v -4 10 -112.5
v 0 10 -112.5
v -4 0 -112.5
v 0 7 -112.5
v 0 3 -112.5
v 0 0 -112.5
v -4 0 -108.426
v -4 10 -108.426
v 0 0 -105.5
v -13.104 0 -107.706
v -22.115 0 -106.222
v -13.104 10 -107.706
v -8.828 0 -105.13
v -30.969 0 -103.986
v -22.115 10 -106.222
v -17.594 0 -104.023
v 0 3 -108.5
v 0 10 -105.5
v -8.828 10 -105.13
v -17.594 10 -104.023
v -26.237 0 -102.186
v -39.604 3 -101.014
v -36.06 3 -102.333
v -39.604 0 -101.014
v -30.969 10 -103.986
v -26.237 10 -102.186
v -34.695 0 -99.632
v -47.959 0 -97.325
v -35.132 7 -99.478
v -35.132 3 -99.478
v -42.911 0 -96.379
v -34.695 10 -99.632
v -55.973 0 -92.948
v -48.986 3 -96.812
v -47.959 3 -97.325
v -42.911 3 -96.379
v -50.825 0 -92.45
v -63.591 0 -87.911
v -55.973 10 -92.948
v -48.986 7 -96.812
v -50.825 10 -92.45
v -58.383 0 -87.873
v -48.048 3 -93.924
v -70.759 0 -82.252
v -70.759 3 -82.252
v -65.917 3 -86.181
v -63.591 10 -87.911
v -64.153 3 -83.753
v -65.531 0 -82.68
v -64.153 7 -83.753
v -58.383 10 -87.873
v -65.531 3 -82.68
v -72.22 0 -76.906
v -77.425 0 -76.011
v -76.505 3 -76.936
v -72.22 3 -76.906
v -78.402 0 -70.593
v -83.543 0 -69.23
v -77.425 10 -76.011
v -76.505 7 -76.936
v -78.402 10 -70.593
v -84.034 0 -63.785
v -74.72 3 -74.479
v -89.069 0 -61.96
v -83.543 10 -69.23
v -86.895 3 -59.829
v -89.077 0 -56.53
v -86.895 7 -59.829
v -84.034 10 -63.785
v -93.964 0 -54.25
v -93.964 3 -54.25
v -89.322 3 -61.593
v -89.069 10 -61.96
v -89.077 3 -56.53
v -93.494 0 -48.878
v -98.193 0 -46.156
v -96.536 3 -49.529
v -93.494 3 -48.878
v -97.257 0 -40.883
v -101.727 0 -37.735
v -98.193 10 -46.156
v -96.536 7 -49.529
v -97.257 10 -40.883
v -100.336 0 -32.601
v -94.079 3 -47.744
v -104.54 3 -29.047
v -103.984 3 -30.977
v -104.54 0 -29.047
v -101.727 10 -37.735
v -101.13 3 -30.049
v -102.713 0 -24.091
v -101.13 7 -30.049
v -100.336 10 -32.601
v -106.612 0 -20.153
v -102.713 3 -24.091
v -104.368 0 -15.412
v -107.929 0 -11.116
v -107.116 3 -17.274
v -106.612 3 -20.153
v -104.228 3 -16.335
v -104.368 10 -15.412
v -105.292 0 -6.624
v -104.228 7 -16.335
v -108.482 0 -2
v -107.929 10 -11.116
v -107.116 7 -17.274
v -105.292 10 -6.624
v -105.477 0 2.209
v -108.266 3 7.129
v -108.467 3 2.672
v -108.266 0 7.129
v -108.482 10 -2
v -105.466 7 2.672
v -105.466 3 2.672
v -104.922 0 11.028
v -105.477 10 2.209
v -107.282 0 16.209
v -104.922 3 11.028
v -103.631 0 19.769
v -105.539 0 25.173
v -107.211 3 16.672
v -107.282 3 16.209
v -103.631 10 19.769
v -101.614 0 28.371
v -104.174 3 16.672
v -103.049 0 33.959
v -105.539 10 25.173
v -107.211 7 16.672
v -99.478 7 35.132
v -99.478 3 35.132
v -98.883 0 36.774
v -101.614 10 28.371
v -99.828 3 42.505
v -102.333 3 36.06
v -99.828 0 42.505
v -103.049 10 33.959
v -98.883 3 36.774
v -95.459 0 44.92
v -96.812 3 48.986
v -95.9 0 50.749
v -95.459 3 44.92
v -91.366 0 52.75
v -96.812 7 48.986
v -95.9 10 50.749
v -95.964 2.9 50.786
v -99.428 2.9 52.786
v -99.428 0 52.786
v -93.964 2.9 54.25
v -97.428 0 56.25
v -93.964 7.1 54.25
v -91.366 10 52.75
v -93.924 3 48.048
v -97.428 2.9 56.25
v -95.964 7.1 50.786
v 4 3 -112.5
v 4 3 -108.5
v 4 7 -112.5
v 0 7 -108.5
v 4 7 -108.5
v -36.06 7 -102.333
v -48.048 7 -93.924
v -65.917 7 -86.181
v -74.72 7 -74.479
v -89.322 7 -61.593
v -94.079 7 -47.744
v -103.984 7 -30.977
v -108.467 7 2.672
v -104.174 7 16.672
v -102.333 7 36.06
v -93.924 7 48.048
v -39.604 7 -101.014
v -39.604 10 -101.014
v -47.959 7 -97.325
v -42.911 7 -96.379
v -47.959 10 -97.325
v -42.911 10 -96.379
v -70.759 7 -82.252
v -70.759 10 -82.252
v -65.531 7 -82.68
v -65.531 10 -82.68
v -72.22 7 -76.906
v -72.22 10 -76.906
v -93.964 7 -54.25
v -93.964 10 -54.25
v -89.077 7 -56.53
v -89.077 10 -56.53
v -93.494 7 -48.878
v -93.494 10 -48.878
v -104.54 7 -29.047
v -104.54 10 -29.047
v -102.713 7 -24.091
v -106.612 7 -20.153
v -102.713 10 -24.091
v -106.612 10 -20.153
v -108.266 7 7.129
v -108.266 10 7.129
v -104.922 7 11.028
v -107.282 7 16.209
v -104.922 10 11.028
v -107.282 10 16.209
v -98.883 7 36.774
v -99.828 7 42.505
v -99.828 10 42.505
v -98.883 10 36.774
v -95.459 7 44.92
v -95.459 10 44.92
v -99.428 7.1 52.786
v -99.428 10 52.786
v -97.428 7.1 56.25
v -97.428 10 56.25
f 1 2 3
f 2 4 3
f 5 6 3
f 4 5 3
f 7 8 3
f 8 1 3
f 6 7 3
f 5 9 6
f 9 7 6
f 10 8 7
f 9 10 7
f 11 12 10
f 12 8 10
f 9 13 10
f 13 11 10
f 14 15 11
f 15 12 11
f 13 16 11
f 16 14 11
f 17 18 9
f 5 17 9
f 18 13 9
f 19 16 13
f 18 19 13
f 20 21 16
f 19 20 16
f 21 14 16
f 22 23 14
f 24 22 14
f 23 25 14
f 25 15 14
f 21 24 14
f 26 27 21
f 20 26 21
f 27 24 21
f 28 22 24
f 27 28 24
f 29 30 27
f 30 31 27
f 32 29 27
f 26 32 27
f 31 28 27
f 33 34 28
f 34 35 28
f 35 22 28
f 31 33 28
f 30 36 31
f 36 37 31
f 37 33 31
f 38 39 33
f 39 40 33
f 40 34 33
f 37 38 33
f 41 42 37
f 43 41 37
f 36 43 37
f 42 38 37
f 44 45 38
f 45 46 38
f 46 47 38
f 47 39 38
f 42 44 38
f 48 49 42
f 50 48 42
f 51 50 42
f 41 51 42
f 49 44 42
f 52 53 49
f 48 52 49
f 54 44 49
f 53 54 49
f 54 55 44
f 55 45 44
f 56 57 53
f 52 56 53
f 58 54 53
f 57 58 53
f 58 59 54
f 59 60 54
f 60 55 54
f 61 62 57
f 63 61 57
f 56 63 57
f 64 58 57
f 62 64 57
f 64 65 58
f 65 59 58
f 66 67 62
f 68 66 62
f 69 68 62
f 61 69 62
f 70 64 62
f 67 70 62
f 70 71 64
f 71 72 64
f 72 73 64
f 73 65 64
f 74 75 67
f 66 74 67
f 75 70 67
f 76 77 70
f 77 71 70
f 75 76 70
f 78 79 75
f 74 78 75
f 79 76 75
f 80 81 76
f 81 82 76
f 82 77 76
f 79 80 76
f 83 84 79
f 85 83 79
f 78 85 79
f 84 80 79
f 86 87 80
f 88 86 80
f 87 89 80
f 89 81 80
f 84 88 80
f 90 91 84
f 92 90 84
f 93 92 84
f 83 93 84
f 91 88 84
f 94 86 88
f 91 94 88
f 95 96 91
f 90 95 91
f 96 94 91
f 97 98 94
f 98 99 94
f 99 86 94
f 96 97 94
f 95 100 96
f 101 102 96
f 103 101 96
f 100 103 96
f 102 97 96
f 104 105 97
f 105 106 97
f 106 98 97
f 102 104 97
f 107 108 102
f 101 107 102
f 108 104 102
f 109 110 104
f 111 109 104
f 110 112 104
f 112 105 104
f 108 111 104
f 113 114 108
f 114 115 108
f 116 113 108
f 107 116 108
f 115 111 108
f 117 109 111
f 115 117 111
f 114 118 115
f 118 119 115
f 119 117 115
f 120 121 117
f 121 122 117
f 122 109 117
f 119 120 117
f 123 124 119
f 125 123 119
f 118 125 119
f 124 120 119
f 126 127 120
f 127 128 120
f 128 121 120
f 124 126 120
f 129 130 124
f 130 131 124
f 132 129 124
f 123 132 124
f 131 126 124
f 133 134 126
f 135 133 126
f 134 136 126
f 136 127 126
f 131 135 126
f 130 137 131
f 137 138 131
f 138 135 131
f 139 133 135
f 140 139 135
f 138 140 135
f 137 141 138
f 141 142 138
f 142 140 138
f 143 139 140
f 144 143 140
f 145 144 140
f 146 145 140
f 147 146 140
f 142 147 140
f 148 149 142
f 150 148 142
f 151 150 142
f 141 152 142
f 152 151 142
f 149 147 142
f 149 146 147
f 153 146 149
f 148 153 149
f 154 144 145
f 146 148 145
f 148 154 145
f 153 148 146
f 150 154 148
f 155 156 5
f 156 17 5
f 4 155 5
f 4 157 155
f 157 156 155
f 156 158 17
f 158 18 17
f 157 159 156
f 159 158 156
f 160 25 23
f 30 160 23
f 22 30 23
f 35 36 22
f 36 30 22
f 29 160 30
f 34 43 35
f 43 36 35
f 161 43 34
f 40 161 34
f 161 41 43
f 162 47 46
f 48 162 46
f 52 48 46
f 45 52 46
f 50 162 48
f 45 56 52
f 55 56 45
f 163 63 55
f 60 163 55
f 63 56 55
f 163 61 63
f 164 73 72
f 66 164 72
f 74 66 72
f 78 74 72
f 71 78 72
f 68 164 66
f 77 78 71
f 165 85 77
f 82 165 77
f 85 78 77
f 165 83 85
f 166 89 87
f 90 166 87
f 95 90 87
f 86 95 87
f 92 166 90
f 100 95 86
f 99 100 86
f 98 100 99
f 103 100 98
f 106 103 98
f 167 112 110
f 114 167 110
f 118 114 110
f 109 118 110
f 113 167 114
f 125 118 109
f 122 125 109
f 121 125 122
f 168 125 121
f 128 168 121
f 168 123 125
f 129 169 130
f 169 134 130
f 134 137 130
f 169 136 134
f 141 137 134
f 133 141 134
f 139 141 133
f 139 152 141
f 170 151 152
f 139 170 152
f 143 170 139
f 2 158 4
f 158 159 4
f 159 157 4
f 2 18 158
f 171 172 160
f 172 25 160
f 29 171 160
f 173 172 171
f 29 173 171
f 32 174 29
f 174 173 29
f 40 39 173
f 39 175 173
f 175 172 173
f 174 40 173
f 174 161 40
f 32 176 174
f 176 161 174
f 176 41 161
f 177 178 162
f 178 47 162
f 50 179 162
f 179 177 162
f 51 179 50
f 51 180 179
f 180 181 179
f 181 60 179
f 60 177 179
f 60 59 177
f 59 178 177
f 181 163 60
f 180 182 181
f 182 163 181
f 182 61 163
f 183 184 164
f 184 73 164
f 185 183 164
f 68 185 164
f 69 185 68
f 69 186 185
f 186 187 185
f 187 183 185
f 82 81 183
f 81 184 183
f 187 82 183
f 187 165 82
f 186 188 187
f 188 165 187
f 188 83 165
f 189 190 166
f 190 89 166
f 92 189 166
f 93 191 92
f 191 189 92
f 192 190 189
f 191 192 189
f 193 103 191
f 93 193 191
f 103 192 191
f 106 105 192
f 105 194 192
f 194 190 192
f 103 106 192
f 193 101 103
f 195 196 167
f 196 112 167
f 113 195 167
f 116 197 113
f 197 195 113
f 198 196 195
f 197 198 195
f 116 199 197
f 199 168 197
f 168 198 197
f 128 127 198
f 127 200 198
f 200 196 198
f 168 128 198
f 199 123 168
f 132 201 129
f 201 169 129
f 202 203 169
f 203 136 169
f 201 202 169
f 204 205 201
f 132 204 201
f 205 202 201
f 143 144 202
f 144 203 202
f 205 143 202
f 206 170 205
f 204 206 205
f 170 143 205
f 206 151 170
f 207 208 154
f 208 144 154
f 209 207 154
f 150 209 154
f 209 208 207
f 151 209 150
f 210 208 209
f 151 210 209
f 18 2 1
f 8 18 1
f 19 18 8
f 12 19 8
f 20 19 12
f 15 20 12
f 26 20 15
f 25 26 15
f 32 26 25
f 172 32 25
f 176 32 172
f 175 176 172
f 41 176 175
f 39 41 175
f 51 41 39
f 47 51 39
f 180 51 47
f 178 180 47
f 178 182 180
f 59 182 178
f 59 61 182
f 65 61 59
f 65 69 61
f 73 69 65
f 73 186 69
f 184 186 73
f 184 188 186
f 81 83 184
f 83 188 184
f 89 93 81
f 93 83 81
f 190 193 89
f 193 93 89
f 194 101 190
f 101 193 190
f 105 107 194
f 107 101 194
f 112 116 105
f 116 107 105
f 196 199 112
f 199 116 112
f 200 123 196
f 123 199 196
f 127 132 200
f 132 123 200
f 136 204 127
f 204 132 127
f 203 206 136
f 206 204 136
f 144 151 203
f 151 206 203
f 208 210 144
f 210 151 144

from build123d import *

# Parameters (mm, degrees)
BOSS_EXTRUDE1_DEPTH             = 10
SKETCH2_W                       = 8
SKETCH2_H                       = 4.2
CUT_EXTRUDE1_DEPTH              = 4
SKETCH3_W                       = 8
SKETCH3_H                       = 4
BOSS_EXTRUDE2_DEPTH             = 4
SKETCH4_W                       = 14
SKETCH4_H                       = 4
CUT_EXTRUDE2_DEPTH              = 109.5
CIRPATTERN4_COUNT               = 5
CIRPATTERN4_ANGLE               = 72
CIRPATTERN4_THE_OTHER_WAY_COUNT = 5
CIRPATTERN4_THE_OTHER_WAY_ANGLE = 72


with BuildPart() as part:
    # Sketch1 → Boss-Extrude1 (new body)
    with BuildSketch(Plane(origin=(0, 0, 0), x_dir=(1, 0, 0), z_dir=(0, 1, 0))):
        with BuildLine():
            Line((-4, 112.5), (-4, 108.426242211))
            ThreePointArc((-4, 108.426242211), (-93.963756311, 54.25), (-95.899880192, -50.74901949))
            Line((-95.899880192, -50.74901949), (-99.427857926, -52.785898385))
            Line((-99.427857926, -52.785898385), (-97.427857926, -56.25))
            Line((-97.427857926, -56.25), (-91.365680099, -52.75))
            ThreePointArc((-91.365680099, -52.75), (-91.365680099, 52.75), (0, 105.5))
            Line((0, 105.5), (0, 112.5))
            Line((0, 112.5), (-4, 112.5))
        make_face()
    extrude(amount=BOSS_EXTRUDE1_DEPTH)

    # Sketch2 → Cut-Extrude1 (cut)
    with BuildSketch(Plane(origin=(-97.427857926, 0, 56.25), x_dir=(0.5, 0, 0.866025404), z_dir=(-0.866025404, 0, 0.5))):
        with Locations((0, 5)):
            Rectangle(SKETCH2_W, SKETCH2_H)
    extrude(amount=-CUT_EXTRUDE1_DEPTH, mode=Mode.SUBTRACT)

    # Sketch3 → Boss-Extrude2 (add)
    with BuildSketch(Plane(origin=(0, 0, -112.5), x_dir=(-1, 0, 0), z_dir=(0, 0, -1))):
        with Locations((0, 5)):
            Rectangle(SKETCH3_W, SKETCH3_H)
    extrude(amount=-BOSS_EXTRUDE2_DEPTH)

    # Sketch4 → Cut-Extrude2 (cut, through all)
    with BuildSketch(Plane(origin=(0, 0, 0), x_dir=(0, 0, -1), z_dir=(1, 0, 0))):
        with Locations((-9.672320837, 5)):
            Rectangle(SKETCH4_W, SKETCH4_H)
    cut_extrude2 = extrude(amount=-CUT_EXTRUDE2_DEPTH, mode=Mode.SUBTRACT)

    # CirPattern4: Cut-Extrude2 ×5 about axis
    cirpattern4_axis = Axis((0, 0, 0), (0, -1, 0))
    for i in range(1, CIRPATTERN4_COUNT):
        add(cut_extrude2.rotate(cirpattern4_axis, i * CIRPATTERN4_ANGLE / (CIRPATTERN4_COUNT - 1)), mode=Mode.SUBTRACT)

    # CirPattern4 the other way: Cut-Extrude2 ×5 about axis
    cirpattern4_the_other_way_axis = Axis((0, 0, 0), (0, 1, 0))
    for i in range(1, CIRPATTERN4_THE_OTHER_WAY_COUNT):
        add(cut_extrude2.rotate(cirpattern4_the_other_way_axis, i * CIRPATTERN4_THE_OTHER_WAY_ANGLE / (CIRPATTERN4_THE_OTHER_WAY_COUNT - 1)), mode=Mode.SUBTRACT)


solid = part.part
